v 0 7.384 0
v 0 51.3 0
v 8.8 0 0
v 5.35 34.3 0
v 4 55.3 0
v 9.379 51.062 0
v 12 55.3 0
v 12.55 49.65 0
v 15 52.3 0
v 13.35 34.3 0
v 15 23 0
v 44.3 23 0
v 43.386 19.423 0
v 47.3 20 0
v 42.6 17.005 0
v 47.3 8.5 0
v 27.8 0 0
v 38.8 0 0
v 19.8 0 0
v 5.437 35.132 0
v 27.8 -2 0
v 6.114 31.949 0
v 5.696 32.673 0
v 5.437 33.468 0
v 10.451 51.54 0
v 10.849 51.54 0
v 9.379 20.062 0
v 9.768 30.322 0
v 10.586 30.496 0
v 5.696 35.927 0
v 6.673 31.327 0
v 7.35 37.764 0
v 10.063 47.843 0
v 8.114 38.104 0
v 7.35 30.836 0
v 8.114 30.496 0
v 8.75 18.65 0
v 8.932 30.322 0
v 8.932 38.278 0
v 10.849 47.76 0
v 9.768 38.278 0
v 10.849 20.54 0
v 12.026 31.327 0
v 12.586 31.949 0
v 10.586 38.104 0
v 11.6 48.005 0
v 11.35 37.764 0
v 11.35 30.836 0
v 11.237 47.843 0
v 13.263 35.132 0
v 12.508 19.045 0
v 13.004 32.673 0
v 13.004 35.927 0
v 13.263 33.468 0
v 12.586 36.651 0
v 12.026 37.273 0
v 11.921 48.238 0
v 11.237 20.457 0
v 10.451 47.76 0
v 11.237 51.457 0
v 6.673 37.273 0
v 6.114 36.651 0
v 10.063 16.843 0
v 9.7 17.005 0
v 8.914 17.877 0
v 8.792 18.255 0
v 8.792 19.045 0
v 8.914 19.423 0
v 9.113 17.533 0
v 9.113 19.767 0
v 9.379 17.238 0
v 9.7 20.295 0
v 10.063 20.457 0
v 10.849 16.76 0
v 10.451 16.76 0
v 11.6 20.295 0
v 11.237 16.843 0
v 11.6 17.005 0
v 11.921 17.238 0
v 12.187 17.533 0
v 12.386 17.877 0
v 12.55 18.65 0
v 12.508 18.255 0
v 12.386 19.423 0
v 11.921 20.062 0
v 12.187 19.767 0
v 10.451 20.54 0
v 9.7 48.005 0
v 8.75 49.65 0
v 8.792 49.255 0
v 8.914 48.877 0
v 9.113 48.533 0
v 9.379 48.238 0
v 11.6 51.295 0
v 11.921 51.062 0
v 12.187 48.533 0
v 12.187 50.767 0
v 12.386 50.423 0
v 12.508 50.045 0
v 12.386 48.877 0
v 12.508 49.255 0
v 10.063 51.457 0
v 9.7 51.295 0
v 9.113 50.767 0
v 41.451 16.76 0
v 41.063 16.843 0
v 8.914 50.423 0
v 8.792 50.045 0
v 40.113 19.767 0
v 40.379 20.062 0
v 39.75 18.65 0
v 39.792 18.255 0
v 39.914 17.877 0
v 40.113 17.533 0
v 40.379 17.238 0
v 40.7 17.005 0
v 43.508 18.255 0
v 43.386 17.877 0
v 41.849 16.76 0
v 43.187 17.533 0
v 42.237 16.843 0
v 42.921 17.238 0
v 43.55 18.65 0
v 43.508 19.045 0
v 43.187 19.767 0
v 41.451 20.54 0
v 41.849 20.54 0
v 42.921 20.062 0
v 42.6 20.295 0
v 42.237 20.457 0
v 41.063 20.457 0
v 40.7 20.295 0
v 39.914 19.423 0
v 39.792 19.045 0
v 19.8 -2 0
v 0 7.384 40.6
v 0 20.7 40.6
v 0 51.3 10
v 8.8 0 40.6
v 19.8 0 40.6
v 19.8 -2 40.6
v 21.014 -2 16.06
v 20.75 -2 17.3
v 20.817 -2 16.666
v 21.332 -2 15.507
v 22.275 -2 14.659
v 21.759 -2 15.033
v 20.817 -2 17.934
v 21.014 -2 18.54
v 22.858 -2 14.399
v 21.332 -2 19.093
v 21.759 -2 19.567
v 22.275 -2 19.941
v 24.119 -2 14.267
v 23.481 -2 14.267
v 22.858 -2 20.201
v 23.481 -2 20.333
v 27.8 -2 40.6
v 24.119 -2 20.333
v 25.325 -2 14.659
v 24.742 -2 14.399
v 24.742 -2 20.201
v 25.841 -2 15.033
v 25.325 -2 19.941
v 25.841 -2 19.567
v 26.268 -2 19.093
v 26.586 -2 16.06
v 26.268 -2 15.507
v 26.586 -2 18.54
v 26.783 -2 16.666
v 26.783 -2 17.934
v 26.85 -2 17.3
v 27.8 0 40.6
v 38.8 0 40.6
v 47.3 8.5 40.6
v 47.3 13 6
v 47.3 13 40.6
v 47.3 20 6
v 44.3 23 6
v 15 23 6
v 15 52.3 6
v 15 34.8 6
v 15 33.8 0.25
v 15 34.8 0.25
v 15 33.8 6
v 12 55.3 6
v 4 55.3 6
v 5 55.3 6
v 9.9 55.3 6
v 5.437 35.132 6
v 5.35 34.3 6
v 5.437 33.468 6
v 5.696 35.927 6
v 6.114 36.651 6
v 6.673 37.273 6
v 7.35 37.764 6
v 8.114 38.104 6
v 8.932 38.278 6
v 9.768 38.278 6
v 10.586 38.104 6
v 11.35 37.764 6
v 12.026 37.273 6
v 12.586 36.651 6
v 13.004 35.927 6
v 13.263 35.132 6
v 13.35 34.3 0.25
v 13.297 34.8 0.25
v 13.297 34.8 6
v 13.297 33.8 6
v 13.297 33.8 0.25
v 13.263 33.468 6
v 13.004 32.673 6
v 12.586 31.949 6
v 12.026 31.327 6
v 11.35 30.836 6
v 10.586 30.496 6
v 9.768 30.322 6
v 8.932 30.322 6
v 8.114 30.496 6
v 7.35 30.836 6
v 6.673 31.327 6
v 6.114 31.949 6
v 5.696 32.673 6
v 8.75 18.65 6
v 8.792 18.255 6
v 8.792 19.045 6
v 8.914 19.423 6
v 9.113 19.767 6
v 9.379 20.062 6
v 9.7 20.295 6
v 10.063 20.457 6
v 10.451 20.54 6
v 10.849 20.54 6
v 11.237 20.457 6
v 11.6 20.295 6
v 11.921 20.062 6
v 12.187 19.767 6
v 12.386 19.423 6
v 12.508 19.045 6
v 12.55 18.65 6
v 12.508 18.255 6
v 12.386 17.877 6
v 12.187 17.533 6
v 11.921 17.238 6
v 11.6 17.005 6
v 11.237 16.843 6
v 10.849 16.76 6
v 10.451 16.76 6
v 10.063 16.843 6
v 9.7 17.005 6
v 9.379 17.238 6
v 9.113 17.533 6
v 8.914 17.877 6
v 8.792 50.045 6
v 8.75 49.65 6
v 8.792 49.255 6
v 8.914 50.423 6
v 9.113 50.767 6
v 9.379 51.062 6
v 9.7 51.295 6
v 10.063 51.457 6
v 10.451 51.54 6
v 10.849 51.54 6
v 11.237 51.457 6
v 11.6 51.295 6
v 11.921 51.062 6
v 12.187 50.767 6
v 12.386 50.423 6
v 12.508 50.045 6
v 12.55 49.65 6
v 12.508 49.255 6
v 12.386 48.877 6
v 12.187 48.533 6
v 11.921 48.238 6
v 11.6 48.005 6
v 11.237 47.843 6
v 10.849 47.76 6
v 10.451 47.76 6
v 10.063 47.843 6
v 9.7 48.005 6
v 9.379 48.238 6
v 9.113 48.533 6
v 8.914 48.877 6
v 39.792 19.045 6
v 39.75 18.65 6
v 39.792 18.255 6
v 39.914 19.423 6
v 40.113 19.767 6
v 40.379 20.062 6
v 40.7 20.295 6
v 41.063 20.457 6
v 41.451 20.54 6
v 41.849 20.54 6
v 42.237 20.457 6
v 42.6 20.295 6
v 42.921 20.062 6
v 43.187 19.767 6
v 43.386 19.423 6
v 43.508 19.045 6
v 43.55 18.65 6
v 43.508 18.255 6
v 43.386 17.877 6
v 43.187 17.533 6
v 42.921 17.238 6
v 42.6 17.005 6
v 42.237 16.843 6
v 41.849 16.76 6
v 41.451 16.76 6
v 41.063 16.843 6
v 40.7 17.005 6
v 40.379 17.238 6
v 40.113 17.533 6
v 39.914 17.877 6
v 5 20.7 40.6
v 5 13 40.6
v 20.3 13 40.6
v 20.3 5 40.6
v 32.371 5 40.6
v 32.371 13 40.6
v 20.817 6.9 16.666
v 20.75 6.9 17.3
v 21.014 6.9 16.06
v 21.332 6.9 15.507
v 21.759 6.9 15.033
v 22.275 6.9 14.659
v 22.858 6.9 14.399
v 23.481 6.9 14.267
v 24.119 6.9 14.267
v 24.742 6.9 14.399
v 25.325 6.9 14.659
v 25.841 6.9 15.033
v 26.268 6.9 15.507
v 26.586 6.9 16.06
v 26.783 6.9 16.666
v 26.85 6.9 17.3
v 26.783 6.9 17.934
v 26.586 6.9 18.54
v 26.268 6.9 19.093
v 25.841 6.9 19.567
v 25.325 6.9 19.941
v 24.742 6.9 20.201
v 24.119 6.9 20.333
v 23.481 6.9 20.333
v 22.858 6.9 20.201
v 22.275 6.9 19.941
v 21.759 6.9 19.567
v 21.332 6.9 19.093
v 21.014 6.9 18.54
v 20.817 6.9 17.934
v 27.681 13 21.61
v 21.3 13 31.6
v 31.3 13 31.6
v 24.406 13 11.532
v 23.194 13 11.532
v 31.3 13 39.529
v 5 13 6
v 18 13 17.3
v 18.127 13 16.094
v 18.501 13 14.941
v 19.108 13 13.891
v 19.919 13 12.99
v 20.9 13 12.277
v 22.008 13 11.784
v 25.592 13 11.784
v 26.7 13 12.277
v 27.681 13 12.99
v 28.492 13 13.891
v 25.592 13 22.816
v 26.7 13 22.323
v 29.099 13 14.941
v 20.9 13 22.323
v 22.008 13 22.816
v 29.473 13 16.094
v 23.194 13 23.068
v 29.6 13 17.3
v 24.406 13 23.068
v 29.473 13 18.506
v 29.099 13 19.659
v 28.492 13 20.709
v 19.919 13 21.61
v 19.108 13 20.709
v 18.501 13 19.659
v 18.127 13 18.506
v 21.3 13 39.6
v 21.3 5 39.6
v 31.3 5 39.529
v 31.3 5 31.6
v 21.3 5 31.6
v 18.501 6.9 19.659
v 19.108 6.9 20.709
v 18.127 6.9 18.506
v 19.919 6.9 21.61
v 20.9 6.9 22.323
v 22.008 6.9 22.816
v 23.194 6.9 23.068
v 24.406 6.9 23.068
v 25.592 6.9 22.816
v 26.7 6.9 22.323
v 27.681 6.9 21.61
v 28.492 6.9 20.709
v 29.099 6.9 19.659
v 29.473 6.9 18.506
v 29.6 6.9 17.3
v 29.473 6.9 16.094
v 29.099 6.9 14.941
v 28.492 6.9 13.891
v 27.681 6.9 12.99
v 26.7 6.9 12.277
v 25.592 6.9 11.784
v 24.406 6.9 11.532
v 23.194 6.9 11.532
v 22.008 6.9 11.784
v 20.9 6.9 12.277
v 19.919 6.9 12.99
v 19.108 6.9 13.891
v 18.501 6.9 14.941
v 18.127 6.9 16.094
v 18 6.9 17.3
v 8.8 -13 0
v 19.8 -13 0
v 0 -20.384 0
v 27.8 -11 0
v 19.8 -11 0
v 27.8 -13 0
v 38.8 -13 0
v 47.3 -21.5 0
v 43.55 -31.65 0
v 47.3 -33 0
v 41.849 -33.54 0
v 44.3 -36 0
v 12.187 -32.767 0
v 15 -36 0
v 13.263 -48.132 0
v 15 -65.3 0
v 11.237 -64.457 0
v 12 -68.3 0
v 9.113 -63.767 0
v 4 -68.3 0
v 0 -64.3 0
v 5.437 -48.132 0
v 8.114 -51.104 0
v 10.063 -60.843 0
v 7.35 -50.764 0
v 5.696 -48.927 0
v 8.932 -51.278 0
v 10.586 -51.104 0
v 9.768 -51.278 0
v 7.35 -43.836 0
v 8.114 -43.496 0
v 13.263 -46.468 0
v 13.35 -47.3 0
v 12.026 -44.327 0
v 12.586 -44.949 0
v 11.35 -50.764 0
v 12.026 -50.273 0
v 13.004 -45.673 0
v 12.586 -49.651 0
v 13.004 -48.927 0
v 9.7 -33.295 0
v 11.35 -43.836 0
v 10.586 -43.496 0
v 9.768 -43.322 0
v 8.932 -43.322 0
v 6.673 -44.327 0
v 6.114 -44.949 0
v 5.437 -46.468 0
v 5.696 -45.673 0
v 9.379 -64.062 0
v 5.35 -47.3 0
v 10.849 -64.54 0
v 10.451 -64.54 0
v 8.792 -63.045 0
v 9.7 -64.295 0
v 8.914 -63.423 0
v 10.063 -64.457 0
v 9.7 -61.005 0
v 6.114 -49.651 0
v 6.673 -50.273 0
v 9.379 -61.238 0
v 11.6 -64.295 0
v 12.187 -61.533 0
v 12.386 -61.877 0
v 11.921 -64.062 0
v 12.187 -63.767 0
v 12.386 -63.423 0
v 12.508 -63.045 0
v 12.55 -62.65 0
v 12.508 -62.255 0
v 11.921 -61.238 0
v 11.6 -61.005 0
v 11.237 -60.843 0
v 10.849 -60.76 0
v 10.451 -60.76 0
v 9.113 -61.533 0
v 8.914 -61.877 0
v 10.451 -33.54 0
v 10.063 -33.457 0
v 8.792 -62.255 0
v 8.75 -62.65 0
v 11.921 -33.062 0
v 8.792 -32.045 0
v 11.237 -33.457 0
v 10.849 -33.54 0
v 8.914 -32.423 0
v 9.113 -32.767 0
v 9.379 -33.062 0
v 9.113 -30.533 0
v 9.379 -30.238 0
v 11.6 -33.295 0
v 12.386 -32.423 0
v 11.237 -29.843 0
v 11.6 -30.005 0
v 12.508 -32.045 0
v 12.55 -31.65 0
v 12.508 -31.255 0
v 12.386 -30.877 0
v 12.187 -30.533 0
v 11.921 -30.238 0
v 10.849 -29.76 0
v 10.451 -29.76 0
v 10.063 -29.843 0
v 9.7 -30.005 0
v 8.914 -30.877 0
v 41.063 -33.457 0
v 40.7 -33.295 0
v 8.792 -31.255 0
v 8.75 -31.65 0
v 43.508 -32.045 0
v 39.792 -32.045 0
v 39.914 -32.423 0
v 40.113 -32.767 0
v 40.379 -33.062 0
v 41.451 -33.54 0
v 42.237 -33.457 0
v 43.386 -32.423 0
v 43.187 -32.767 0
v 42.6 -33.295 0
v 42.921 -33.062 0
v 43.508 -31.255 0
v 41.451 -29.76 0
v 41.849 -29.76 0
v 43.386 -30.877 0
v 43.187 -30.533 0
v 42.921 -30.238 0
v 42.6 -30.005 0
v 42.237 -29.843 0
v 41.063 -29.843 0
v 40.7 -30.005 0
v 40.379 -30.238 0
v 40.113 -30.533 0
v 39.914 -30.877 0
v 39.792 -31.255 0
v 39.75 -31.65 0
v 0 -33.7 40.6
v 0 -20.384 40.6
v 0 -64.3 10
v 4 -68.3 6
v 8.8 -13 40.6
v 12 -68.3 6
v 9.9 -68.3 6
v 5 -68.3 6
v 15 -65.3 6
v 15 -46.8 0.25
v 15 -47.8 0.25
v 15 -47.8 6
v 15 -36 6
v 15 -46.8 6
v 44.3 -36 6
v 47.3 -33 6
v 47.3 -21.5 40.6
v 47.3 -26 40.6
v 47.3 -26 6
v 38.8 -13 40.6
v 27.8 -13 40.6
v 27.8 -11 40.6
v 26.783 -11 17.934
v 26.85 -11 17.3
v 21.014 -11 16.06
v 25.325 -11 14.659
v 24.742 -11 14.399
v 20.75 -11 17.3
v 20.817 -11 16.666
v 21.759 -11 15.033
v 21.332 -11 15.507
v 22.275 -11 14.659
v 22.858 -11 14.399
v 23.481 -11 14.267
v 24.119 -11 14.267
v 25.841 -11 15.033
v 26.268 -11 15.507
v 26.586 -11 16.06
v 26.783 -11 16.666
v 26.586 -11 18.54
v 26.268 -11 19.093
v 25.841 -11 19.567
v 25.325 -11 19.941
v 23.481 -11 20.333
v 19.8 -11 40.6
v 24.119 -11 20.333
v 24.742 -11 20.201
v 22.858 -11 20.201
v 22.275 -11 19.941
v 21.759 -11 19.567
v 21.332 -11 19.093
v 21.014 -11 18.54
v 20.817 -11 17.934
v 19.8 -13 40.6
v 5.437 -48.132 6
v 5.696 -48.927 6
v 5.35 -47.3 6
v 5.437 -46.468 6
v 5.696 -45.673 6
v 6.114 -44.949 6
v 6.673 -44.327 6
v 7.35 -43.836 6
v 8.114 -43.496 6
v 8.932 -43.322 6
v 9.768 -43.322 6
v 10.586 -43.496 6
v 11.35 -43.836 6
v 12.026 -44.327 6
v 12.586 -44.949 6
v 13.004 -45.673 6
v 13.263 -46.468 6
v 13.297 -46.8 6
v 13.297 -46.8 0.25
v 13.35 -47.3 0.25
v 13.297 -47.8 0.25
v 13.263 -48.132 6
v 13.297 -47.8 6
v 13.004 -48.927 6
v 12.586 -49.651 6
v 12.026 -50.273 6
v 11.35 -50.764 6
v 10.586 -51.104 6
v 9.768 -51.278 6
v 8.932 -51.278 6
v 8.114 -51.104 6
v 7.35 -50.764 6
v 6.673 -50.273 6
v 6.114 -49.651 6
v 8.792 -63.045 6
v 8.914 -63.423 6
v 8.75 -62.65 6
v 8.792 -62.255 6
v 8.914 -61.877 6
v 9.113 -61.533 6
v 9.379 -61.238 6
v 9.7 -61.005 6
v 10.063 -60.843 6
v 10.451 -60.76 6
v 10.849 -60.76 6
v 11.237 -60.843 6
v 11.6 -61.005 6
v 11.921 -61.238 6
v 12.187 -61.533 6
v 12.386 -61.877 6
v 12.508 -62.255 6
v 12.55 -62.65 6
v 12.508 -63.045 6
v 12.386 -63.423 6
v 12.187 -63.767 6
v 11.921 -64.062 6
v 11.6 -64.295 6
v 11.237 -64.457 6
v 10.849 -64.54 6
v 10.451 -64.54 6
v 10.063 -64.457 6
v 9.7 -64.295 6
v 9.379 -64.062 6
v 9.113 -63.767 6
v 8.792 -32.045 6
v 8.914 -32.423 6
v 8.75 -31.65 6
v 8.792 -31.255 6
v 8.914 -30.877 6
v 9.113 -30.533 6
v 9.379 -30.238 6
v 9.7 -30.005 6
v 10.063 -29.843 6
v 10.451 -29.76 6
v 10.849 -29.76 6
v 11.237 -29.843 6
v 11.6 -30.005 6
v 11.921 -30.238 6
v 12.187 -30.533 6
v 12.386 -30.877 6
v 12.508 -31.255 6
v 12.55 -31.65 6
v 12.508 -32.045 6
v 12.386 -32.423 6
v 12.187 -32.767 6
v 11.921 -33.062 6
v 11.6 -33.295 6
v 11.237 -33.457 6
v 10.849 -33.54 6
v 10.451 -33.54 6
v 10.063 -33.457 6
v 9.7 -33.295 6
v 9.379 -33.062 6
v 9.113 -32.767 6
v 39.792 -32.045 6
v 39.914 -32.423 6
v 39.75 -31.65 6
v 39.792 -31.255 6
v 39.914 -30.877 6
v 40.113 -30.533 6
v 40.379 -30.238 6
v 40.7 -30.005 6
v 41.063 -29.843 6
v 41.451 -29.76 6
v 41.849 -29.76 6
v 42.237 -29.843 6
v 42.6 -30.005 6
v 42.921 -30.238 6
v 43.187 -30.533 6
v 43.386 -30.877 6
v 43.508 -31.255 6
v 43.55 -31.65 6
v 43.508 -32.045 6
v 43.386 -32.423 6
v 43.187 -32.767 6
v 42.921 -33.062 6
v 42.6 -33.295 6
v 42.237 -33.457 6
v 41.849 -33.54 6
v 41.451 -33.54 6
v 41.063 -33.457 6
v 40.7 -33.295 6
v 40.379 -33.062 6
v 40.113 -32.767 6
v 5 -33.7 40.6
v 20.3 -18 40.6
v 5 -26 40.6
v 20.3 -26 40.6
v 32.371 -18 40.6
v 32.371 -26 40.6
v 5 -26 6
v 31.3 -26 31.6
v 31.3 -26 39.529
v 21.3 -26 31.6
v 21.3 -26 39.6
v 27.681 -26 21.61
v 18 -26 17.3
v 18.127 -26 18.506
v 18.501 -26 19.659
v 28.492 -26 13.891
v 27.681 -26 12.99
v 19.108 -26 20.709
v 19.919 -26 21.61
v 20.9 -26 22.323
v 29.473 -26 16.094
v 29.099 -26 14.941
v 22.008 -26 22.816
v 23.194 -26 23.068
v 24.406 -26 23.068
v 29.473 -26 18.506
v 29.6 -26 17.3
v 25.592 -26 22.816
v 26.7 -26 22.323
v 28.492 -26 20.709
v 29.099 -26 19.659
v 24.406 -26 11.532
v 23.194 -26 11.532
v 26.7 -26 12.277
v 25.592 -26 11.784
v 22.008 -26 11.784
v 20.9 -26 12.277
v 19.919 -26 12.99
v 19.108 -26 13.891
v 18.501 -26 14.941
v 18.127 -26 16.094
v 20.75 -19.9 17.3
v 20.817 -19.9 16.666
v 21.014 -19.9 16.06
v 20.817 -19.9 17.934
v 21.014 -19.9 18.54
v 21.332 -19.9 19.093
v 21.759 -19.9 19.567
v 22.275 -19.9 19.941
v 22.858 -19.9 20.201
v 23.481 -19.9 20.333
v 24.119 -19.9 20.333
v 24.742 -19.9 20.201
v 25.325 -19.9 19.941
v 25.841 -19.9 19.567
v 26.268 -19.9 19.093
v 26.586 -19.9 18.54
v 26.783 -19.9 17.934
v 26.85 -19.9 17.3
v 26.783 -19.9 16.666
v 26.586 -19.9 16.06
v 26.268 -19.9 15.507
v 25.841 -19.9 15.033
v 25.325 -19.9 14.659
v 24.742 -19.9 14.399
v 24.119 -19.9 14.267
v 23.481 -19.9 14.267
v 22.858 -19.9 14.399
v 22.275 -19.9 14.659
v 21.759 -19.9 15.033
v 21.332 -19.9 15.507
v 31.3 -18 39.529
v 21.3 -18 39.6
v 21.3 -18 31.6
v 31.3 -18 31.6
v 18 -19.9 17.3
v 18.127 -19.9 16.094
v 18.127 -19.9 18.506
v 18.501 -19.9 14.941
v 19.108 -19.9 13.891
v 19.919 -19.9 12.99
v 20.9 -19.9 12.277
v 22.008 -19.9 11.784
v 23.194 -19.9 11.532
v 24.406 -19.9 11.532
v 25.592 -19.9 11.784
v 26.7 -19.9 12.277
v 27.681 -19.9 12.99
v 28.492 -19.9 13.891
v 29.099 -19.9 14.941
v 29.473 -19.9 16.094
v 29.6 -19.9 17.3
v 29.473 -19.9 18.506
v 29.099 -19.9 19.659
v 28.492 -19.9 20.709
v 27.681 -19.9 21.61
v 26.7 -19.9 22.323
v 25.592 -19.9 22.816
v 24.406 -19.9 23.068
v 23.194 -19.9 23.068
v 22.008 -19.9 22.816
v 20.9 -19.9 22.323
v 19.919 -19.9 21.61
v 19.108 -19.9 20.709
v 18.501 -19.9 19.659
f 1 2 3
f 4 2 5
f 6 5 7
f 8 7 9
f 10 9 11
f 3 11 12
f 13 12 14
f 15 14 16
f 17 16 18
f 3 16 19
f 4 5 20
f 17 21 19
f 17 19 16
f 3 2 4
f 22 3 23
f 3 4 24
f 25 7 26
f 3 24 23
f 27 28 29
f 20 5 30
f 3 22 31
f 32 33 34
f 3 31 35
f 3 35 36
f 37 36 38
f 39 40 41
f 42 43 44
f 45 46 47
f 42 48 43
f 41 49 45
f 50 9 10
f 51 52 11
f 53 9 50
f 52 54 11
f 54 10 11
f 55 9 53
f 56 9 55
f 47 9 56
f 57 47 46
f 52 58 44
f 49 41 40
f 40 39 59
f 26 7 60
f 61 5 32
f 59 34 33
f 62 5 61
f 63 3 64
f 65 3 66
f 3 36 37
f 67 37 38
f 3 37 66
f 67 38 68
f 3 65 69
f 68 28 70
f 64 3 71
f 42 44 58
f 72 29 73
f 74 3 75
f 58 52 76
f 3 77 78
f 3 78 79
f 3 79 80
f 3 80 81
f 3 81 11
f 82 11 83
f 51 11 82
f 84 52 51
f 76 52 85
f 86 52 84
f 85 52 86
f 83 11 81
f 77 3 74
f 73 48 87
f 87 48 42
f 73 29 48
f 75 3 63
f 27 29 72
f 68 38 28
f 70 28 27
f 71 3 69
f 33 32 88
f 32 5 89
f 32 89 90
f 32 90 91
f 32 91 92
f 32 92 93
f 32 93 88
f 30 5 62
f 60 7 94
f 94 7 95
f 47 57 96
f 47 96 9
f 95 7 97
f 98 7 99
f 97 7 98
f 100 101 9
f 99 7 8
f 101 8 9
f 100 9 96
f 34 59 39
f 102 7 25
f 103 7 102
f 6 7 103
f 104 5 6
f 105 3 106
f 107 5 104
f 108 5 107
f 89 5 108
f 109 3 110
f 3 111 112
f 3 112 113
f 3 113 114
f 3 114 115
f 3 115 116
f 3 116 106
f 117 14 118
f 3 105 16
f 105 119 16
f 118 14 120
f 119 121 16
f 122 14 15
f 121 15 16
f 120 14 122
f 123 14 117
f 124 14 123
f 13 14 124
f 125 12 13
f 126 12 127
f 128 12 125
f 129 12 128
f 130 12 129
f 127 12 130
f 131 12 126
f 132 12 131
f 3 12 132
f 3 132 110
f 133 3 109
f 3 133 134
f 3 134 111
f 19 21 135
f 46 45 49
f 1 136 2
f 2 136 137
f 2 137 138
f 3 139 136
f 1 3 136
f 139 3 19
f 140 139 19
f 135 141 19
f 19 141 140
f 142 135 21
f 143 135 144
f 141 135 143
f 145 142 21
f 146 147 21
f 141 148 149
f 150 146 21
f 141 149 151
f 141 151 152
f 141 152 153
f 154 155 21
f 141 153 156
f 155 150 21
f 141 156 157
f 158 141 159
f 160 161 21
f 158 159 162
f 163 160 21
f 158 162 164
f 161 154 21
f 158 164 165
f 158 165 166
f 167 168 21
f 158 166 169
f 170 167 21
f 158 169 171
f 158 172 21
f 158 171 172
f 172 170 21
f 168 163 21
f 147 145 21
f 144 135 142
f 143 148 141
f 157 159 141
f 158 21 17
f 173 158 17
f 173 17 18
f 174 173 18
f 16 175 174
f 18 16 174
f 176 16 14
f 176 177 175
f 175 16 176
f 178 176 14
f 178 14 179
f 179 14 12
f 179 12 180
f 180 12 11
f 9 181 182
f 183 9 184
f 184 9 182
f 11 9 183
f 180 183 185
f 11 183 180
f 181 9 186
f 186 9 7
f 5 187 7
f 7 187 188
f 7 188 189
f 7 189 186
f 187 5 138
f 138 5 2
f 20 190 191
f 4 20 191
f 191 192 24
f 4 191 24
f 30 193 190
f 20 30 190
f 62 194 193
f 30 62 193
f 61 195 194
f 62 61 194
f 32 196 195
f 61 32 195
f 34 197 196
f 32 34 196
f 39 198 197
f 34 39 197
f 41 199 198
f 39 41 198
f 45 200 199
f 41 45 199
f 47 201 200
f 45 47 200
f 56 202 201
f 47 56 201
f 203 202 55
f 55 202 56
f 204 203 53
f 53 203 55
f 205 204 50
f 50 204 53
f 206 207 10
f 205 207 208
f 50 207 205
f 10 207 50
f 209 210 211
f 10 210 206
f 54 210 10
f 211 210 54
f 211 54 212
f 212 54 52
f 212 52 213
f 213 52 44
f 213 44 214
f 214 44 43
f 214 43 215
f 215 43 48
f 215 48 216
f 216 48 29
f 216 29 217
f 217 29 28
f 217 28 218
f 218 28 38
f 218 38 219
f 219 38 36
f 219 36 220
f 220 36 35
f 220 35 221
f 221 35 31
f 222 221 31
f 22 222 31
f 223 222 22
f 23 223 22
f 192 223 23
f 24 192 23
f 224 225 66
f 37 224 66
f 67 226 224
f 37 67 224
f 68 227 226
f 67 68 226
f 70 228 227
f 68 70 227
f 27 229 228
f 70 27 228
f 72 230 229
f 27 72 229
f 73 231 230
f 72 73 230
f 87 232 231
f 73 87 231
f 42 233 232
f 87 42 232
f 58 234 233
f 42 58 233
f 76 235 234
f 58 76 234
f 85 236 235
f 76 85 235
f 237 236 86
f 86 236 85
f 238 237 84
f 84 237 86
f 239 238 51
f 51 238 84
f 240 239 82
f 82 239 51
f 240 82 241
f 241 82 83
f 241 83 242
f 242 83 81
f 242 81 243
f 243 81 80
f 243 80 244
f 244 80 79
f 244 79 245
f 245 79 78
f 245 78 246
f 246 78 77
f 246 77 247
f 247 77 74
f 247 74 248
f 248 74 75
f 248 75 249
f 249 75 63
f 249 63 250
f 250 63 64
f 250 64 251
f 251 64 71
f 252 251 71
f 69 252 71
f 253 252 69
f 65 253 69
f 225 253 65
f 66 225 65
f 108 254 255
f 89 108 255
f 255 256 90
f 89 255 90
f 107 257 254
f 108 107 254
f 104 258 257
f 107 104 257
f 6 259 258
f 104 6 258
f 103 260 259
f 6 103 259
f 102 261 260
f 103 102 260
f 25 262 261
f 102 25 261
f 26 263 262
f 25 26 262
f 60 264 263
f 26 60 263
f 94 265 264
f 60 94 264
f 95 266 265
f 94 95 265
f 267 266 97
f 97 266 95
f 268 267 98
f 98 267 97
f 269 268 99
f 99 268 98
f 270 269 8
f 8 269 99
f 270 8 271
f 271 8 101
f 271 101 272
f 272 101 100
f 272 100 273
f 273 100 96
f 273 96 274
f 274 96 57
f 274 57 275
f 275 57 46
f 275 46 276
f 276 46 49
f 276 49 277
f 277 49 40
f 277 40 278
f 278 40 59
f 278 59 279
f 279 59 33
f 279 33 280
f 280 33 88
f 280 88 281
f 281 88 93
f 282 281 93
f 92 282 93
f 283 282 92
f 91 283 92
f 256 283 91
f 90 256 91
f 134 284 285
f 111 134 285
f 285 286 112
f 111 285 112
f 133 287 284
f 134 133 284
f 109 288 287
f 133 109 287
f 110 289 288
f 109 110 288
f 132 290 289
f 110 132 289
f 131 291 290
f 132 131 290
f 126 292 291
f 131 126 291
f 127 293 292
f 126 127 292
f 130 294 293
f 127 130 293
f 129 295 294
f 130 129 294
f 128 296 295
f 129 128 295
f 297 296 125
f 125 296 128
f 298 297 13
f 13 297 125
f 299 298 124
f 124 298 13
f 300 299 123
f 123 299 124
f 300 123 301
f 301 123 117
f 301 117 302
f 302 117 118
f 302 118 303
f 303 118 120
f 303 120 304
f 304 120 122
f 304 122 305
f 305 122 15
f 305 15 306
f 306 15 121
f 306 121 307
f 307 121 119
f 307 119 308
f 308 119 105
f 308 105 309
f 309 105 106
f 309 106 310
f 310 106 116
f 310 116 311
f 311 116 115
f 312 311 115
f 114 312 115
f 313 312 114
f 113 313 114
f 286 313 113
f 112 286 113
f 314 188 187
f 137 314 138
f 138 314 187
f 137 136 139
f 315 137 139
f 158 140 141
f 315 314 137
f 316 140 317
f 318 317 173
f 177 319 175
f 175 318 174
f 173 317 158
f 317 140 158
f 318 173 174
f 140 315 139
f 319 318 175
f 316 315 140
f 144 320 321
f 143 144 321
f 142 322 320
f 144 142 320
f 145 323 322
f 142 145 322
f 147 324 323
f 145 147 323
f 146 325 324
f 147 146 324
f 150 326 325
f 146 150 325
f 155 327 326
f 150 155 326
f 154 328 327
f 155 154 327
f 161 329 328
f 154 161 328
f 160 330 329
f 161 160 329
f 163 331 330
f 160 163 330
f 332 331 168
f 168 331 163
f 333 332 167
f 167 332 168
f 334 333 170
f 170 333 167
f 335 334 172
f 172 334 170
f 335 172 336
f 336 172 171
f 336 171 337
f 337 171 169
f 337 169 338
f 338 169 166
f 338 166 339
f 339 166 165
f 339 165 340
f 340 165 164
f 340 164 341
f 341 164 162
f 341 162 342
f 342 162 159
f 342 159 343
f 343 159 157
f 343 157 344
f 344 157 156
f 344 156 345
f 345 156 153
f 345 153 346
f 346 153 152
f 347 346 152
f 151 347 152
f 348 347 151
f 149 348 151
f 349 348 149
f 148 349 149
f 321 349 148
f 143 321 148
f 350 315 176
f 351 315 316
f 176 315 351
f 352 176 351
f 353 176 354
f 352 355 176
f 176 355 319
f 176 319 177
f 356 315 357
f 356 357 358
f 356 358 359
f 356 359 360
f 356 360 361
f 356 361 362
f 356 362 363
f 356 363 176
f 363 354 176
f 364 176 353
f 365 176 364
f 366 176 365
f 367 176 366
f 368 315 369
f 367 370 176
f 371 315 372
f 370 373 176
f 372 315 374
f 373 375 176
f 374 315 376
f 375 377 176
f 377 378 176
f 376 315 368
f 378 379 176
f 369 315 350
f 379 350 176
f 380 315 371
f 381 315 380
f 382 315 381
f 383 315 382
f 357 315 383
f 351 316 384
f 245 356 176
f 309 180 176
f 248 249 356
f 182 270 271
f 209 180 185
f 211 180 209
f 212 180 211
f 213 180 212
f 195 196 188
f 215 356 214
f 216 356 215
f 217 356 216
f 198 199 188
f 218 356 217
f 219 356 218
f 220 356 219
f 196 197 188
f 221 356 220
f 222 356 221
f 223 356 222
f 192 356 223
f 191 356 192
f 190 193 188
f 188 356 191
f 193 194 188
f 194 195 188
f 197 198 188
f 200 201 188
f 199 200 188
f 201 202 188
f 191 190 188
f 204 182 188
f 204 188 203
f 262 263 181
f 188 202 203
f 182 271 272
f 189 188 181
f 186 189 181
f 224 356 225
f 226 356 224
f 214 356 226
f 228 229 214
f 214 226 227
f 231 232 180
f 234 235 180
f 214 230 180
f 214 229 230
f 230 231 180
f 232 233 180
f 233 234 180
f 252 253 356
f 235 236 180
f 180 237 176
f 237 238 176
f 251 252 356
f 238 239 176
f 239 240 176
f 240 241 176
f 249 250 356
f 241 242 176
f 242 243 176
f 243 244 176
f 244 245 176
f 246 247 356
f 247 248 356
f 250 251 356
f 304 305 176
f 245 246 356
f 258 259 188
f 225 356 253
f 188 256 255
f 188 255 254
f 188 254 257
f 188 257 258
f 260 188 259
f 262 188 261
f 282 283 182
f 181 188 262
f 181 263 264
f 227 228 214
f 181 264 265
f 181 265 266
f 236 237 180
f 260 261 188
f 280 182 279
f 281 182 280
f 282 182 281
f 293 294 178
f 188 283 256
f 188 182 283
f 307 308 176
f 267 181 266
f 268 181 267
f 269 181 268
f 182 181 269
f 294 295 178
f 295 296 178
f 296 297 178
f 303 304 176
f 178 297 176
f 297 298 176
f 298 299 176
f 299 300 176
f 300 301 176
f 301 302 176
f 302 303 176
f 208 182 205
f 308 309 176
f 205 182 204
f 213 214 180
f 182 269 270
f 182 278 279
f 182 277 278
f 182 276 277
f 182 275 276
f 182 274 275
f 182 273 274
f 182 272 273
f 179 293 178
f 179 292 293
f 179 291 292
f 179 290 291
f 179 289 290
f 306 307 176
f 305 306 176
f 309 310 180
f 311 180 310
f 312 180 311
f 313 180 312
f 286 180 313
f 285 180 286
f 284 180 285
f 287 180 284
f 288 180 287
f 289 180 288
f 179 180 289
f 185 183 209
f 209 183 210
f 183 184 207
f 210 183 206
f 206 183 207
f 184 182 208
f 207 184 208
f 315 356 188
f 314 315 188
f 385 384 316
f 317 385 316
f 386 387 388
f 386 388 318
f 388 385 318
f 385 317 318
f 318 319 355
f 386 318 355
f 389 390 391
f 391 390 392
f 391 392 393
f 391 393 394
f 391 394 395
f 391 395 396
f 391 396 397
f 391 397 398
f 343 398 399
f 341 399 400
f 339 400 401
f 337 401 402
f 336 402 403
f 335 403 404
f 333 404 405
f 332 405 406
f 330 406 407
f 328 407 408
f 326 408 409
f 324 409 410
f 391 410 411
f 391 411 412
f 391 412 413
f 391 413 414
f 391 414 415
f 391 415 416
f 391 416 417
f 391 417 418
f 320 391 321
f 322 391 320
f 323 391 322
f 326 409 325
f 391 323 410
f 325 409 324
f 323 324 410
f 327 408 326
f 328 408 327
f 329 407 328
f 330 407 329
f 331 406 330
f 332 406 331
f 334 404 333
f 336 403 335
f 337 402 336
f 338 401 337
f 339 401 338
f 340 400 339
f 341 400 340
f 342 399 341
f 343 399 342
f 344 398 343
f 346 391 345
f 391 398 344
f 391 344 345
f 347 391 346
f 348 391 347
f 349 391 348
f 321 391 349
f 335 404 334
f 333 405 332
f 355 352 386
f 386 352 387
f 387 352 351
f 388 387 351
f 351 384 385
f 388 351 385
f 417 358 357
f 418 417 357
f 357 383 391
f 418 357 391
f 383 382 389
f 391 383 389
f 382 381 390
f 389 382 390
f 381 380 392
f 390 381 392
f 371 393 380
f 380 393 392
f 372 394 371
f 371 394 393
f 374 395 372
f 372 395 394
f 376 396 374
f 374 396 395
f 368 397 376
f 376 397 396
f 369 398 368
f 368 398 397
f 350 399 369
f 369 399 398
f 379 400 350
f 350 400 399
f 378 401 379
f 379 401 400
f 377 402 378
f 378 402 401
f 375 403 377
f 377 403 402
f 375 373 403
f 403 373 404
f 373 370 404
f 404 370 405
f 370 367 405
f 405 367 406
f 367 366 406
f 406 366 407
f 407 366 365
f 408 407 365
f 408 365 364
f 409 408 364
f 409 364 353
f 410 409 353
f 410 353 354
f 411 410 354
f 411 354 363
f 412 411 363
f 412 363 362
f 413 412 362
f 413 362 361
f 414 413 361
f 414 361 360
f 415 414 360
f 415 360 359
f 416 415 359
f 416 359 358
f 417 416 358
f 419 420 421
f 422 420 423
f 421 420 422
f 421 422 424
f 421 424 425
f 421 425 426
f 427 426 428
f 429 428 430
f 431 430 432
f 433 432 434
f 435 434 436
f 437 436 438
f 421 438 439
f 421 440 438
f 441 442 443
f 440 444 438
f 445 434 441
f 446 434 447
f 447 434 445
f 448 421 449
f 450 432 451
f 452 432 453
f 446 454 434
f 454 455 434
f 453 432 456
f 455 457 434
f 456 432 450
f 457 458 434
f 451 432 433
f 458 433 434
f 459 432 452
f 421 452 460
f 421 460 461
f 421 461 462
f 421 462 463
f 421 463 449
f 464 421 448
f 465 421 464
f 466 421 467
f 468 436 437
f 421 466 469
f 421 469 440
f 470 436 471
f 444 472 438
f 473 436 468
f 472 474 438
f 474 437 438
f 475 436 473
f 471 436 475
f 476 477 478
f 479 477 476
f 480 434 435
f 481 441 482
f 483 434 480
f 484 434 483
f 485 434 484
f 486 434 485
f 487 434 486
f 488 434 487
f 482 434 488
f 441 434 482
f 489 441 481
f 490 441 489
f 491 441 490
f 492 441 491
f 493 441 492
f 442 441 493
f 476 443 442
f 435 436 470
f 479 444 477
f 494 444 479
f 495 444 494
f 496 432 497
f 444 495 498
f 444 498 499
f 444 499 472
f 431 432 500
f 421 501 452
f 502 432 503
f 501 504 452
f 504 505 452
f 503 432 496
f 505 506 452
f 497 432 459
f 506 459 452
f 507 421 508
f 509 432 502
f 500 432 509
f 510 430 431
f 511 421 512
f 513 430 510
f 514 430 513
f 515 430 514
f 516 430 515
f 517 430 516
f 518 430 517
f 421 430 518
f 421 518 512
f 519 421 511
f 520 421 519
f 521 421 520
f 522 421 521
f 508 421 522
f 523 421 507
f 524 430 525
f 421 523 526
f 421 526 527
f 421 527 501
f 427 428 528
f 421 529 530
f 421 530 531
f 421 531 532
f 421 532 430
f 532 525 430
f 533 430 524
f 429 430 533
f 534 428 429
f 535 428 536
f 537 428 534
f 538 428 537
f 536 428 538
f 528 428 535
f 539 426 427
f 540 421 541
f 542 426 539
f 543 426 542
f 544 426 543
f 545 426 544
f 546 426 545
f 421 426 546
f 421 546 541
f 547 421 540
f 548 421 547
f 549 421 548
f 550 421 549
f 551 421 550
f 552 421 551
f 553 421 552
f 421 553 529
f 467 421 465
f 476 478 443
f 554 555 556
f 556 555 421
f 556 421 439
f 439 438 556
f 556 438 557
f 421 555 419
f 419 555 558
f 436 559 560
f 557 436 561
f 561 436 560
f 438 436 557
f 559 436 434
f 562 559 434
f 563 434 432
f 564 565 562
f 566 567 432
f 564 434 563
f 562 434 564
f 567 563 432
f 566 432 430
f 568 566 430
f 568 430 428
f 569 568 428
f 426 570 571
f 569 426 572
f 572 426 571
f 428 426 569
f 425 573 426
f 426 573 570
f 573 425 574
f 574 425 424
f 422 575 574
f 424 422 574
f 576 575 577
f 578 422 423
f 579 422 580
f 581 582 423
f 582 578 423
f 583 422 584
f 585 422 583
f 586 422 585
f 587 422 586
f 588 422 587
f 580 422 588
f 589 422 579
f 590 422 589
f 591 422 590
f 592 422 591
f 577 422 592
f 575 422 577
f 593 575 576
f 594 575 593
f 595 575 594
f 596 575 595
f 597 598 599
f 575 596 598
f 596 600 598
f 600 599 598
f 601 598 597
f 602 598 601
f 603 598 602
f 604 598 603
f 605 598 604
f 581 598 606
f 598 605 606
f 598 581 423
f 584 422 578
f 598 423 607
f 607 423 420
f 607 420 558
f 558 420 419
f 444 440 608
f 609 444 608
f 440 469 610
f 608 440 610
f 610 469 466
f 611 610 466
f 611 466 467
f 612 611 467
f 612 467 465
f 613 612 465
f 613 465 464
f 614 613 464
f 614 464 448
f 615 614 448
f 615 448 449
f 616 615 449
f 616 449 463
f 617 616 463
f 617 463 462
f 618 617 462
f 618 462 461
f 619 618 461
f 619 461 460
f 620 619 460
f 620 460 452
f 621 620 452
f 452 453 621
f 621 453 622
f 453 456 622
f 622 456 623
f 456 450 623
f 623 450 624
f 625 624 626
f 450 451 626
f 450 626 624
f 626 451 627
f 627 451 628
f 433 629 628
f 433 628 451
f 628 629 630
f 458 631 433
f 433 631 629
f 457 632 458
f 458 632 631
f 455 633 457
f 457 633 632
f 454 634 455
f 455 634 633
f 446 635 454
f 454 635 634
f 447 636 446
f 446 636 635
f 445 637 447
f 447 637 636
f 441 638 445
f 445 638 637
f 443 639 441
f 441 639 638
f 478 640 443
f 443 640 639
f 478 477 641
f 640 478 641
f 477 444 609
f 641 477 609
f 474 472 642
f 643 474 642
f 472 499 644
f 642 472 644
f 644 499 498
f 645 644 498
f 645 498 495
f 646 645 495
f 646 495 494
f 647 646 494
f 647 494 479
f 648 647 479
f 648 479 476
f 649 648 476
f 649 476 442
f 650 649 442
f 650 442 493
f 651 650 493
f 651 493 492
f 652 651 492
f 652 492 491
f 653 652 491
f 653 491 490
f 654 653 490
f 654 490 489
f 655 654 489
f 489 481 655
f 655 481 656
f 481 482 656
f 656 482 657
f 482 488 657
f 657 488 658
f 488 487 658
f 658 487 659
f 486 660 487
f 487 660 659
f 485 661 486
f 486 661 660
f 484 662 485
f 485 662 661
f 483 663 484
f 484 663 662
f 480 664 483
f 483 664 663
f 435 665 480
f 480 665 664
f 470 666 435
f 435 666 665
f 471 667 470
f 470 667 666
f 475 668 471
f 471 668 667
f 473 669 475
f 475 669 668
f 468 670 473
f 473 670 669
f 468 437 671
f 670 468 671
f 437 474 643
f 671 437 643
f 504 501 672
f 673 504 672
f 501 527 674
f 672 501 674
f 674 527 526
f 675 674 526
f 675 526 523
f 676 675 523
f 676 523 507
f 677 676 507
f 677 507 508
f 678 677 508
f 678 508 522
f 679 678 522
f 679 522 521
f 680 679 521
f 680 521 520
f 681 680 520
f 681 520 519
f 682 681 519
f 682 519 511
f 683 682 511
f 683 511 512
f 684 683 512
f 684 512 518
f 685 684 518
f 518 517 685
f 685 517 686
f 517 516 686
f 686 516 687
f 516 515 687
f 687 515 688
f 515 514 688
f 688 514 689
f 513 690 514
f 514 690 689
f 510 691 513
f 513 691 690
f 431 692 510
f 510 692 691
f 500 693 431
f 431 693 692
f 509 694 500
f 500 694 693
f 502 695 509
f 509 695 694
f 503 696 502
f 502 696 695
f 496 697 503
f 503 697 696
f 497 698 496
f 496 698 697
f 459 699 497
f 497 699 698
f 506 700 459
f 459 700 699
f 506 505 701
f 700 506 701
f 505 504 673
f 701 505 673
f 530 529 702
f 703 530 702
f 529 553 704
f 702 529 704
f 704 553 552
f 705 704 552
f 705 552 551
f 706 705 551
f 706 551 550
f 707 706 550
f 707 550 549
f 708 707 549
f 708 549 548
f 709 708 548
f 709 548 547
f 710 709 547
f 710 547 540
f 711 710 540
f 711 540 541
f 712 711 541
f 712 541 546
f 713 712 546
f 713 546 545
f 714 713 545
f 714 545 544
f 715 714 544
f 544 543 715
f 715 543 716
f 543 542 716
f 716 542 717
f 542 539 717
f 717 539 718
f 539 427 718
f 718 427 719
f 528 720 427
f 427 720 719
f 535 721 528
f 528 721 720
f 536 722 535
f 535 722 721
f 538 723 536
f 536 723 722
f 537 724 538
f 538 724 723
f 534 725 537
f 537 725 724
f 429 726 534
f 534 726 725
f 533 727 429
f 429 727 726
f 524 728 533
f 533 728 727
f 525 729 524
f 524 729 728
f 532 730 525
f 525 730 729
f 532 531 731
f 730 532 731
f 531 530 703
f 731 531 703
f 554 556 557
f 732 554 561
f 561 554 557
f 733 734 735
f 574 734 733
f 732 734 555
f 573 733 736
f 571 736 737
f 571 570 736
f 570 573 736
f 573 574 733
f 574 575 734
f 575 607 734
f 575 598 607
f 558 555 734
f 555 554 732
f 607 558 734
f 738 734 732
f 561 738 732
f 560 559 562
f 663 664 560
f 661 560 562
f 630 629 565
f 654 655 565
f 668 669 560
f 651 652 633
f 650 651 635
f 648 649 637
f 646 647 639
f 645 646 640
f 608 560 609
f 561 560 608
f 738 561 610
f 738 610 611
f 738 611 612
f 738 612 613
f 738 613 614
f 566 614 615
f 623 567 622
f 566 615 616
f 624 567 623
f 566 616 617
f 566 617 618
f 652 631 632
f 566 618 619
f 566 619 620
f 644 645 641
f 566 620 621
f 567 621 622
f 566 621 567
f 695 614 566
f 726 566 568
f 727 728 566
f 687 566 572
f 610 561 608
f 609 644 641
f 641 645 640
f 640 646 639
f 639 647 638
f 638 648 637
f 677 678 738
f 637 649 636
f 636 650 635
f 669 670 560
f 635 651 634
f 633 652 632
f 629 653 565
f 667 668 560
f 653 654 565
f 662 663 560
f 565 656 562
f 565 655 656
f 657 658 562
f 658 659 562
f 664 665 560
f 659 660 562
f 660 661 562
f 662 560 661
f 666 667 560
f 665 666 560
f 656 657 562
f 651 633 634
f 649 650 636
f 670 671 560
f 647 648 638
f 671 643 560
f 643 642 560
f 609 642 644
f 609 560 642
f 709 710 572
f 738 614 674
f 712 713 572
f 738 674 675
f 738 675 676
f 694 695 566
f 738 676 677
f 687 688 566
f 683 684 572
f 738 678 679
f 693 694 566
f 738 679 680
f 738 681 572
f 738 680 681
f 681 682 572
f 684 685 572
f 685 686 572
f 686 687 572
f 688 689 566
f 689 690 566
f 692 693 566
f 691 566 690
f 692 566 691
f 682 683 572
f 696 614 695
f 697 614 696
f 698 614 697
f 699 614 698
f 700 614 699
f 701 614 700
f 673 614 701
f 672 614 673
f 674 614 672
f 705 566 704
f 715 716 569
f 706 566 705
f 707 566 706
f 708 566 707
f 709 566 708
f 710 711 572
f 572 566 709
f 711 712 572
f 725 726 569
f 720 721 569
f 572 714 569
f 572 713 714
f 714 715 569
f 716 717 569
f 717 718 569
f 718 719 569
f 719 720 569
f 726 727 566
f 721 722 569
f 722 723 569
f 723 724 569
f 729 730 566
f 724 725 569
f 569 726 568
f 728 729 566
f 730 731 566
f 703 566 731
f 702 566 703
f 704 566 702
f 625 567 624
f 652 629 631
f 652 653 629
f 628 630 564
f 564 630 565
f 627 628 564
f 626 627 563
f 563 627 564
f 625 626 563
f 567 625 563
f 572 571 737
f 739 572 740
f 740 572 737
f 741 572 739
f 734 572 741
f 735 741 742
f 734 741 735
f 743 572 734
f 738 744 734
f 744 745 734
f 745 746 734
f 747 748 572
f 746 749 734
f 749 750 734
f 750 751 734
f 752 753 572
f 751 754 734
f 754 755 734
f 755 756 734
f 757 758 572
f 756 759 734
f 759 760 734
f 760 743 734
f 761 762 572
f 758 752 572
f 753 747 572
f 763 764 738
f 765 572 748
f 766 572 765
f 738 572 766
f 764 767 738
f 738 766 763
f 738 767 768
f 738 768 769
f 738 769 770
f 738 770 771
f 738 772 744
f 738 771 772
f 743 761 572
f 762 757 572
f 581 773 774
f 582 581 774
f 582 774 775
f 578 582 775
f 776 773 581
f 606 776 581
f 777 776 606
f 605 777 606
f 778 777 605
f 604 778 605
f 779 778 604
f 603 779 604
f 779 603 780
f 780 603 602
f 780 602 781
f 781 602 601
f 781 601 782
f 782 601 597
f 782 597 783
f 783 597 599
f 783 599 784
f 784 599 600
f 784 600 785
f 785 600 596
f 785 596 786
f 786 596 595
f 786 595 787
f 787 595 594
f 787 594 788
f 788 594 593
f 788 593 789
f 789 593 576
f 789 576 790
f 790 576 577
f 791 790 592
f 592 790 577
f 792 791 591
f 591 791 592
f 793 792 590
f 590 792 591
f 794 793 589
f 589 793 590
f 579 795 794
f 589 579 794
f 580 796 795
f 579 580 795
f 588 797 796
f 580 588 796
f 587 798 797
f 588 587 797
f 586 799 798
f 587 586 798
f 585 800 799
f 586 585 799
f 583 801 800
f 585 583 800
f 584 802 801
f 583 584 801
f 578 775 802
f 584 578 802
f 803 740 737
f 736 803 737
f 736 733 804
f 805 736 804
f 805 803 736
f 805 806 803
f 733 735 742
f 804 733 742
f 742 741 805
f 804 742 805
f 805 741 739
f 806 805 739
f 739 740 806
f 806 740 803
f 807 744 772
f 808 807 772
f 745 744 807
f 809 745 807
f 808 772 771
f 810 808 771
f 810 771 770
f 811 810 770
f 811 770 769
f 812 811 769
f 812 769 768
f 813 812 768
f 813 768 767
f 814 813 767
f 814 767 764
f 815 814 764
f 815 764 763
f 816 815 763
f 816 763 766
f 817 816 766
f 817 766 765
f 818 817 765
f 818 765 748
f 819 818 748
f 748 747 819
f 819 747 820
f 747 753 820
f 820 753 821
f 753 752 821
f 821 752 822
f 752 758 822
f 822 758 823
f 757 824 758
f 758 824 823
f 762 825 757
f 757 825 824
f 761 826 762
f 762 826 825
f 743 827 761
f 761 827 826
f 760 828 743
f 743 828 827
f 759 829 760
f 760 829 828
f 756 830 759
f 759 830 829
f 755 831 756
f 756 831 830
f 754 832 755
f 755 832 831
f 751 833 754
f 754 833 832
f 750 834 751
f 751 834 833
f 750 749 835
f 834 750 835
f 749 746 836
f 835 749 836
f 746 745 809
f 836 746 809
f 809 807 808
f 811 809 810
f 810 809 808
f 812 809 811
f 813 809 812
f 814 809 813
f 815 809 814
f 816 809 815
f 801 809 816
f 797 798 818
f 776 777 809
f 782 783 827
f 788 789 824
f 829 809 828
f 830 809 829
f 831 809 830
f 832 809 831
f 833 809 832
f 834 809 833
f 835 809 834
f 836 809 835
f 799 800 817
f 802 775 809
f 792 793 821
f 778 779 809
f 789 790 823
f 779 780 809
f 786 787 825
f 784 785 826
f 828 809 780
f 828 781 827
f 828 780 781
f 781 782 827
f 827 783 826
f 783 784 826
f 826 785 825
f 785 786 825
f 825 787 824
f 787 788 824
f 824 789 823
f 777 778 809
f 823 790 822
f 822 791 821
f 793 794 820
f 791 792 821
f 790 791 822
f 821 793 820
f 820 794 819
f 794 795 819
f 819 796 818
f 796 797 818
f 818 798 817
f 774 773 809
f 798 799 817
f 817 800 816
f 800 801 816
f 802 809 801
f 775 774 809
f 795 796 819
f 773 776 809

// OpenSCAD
// file: ../configuration.scad
// Vyska vrstvy pro tisknuti dilu [mm]
layer_height = 0.25; //Slic3r->Print Settings->Layers and perimeters->Layer height

// Rezerva prumeru hlavy sroubu [mm]
spare = 1;
// Prumer hlavy M6 sroubu (pricte se rezerva) [mm]
M6_head_diameter = 10.6+spare;
//M6_head_diameter = 12+spare;

// Vyska hlavy M6 sroubu (dulezite pro zapusteni hlavy sroubu do plastu) [mm]
M6_head_height = 3.6;
//M6_head_height = 4.5;

//Prumery sroubu a tyci
M8_smooth_rod_diameter = 8.3;
M8_smooth_rod_diameter_catch = 8;
M6_diameter = 6.6;
M6_diamater_horizontal = 6.5;
M3_diameter = 3.7;
M3_diameter_horizontal = 3.5;

//Prumery matic
M3_nut_diameter = 7.0;
M3_nut_diameter_horizontal = 6.7;

//ALU profile parameters
ALU_cut_width = 7.9;
ALU_cut_width_horizontal = 7.7;

// Delka motoru (ovlivni dily pro osy Z a Y)
//SX17-1003LQFE (doporuceno hlavne na osu Z)
//motor_length = 29.5;
//SX17-1003 (doporuceno hlavne na osu Z)
motor_length = 34;
//SX17-1005
//motor_length = 40;
//SX17-0905 - zde je jiz problem s velkou vyskou motoru na ose Z - musi se upravit endstop-holder
//motor_length = 48;

// Sirka vytlacovaneho materialu [mm]
extrusion_width = 0.66; //Slic3r->Print Settings->Advanced->Default extrusion width

/// Vyberte typ remenu ******************************************************

// GT2 
//belt_tooth_distance = 2;
//belt_tooth_ratio = 0.6;

// T2.5
belt_tooth_distance = 2.5;
belt_tooth_ratio = 0.68;
// main file
// RebeliX
//
// z bottom
// GNU GPL v3
// Martin Neruda <neruda@reprap4u.cz>
// http://www.reprap4u.cz
// Inspired by Rebel II and Prusa i3


include <../configuration.scad>

// Mezera mezi motorem a soucastkou (tlumi prenaseni vibraci)
space = 0.6;

height = motor_length + space;

// Hodnota musi byt stejna i v z_top (minimum 13)
base_offset = 13; 

// Posun motoru do strany
motor_offset = 0; 

module z_bottom_base(){
 translate([0,0,0]) cube([42.3+5,42.3+base_offset,6]);
 translate([0,0,0]) cube([42.3+5,base_offset,height<=34+space ? 34+space+6 : height+6]);
 translate([0,0,0]) cube([5,42.3+base_offset,(height>=34+space)||(height<=34+space) ? 34+space+6 : height+6]);
 translate([2.5+21.3-4+motor_offset,-2,0]) cube([8,3,height<=34+space ? 34+space+6 : height+6]);
}

module z_bottom_cuts(){
 translate([15,10+base_offset,-0.1]) rotate([0,0,0]) cube([50,50,10]);
 translate([7.5,21.3+base_offset-0.5,layer_height]) cube([10,1,10]); 
 
 translate([2.5+21.3-15+motor_offset,0,-0.1]) rotate([0,0,-220]) cube([30,15,height<=34+space ? 34+space+8 : height+8]);
 translate([2.5+21.3+15+motor_offset,0,-0.1]) rotate([0,0,-45]) cube([15,15,height<=34+space ? 34+space+8 : height+8]); 

 translate([42.3+6,6+base_offset,-0.1]) rotate([0,0,45]) cube([10,10,height+8]);
 translate([15,42.3+base_offset-3,-0.1]) rotate([0,0,45]) cube([10,10,height+8]);
 translate([-5,42.3+base_offset-9,-0.1]) rotate([0,0,45]) cube([20,10,height+8]);
 
 translate([-0.1,42.3+base_offset,6]) rotate([45,0,0]) cube([10,70,50]); 
 
 // Otvor pro kabely motoru 
 //translate([5+21.3-5,5,height+6-7]) cube([10,30,30]); 
 translate([5+21.3-5,5,height+6-9]) cube([10,20,30]); 
 translate([5+21.3,5,height<=34+space ? 34+space+7 : height+7]) rotate([0,45,0]) cube([5,30,5]); 
 translate([5+21.3-7,5,height<=34+space ? 34+space+7 : height+7]) rotate([0,45,0]) cube([5,30,5]);
}

module z_bottom_holes(){

 // Otvor pro hlazenou tyc 8mm
 translate([5+4.35,21.3+base_offset,-0.1]) rotate([0,0,0]) cylinder(r = M8_smooth_rod_diameter_catch/2, h = 20, $fn = 30);

 // Otvory pro motor
 translate([5+5.65,base_offset+5.65,-0.1]){
	translate([0,0,0]) cylinder(h = 20, r=1.9, $fn=30);
	translate([31,0,0]) cylinder(h = 20, r=1.9, $fn=30);
	translate([0,31,0]) cylinder(h = 20, r=1.9, $fn=30);
 }
 // Otvor pro prisroubovani do hlinikoveho profilu
 translate([2.5+21.3+motor_offset,base_offset-M6_head_height-2.5,height/2]) rotate([-90,0,0]) cylinder(r = M6_head_diameter/2, h = 20, $fn = 30);
 translate([2.5+21.3+motor_offset,-3,height/2]) rotate([-90,0,0]) cylinder(r = 3.05, h = 20, $fn = 30);
}

// Cela soucastka
module z_bottom(){
 difference(){
  z_bottom_base();
  z_bottom_cuts();
  z_bottom_holes();
 }
 translate([0,-13,0]) mirror([0,1,0]) difference(){
  z_bottom_base();
  z_bottom_cuts();
  z_bottom_holes();
 }
}

z_bottom();
